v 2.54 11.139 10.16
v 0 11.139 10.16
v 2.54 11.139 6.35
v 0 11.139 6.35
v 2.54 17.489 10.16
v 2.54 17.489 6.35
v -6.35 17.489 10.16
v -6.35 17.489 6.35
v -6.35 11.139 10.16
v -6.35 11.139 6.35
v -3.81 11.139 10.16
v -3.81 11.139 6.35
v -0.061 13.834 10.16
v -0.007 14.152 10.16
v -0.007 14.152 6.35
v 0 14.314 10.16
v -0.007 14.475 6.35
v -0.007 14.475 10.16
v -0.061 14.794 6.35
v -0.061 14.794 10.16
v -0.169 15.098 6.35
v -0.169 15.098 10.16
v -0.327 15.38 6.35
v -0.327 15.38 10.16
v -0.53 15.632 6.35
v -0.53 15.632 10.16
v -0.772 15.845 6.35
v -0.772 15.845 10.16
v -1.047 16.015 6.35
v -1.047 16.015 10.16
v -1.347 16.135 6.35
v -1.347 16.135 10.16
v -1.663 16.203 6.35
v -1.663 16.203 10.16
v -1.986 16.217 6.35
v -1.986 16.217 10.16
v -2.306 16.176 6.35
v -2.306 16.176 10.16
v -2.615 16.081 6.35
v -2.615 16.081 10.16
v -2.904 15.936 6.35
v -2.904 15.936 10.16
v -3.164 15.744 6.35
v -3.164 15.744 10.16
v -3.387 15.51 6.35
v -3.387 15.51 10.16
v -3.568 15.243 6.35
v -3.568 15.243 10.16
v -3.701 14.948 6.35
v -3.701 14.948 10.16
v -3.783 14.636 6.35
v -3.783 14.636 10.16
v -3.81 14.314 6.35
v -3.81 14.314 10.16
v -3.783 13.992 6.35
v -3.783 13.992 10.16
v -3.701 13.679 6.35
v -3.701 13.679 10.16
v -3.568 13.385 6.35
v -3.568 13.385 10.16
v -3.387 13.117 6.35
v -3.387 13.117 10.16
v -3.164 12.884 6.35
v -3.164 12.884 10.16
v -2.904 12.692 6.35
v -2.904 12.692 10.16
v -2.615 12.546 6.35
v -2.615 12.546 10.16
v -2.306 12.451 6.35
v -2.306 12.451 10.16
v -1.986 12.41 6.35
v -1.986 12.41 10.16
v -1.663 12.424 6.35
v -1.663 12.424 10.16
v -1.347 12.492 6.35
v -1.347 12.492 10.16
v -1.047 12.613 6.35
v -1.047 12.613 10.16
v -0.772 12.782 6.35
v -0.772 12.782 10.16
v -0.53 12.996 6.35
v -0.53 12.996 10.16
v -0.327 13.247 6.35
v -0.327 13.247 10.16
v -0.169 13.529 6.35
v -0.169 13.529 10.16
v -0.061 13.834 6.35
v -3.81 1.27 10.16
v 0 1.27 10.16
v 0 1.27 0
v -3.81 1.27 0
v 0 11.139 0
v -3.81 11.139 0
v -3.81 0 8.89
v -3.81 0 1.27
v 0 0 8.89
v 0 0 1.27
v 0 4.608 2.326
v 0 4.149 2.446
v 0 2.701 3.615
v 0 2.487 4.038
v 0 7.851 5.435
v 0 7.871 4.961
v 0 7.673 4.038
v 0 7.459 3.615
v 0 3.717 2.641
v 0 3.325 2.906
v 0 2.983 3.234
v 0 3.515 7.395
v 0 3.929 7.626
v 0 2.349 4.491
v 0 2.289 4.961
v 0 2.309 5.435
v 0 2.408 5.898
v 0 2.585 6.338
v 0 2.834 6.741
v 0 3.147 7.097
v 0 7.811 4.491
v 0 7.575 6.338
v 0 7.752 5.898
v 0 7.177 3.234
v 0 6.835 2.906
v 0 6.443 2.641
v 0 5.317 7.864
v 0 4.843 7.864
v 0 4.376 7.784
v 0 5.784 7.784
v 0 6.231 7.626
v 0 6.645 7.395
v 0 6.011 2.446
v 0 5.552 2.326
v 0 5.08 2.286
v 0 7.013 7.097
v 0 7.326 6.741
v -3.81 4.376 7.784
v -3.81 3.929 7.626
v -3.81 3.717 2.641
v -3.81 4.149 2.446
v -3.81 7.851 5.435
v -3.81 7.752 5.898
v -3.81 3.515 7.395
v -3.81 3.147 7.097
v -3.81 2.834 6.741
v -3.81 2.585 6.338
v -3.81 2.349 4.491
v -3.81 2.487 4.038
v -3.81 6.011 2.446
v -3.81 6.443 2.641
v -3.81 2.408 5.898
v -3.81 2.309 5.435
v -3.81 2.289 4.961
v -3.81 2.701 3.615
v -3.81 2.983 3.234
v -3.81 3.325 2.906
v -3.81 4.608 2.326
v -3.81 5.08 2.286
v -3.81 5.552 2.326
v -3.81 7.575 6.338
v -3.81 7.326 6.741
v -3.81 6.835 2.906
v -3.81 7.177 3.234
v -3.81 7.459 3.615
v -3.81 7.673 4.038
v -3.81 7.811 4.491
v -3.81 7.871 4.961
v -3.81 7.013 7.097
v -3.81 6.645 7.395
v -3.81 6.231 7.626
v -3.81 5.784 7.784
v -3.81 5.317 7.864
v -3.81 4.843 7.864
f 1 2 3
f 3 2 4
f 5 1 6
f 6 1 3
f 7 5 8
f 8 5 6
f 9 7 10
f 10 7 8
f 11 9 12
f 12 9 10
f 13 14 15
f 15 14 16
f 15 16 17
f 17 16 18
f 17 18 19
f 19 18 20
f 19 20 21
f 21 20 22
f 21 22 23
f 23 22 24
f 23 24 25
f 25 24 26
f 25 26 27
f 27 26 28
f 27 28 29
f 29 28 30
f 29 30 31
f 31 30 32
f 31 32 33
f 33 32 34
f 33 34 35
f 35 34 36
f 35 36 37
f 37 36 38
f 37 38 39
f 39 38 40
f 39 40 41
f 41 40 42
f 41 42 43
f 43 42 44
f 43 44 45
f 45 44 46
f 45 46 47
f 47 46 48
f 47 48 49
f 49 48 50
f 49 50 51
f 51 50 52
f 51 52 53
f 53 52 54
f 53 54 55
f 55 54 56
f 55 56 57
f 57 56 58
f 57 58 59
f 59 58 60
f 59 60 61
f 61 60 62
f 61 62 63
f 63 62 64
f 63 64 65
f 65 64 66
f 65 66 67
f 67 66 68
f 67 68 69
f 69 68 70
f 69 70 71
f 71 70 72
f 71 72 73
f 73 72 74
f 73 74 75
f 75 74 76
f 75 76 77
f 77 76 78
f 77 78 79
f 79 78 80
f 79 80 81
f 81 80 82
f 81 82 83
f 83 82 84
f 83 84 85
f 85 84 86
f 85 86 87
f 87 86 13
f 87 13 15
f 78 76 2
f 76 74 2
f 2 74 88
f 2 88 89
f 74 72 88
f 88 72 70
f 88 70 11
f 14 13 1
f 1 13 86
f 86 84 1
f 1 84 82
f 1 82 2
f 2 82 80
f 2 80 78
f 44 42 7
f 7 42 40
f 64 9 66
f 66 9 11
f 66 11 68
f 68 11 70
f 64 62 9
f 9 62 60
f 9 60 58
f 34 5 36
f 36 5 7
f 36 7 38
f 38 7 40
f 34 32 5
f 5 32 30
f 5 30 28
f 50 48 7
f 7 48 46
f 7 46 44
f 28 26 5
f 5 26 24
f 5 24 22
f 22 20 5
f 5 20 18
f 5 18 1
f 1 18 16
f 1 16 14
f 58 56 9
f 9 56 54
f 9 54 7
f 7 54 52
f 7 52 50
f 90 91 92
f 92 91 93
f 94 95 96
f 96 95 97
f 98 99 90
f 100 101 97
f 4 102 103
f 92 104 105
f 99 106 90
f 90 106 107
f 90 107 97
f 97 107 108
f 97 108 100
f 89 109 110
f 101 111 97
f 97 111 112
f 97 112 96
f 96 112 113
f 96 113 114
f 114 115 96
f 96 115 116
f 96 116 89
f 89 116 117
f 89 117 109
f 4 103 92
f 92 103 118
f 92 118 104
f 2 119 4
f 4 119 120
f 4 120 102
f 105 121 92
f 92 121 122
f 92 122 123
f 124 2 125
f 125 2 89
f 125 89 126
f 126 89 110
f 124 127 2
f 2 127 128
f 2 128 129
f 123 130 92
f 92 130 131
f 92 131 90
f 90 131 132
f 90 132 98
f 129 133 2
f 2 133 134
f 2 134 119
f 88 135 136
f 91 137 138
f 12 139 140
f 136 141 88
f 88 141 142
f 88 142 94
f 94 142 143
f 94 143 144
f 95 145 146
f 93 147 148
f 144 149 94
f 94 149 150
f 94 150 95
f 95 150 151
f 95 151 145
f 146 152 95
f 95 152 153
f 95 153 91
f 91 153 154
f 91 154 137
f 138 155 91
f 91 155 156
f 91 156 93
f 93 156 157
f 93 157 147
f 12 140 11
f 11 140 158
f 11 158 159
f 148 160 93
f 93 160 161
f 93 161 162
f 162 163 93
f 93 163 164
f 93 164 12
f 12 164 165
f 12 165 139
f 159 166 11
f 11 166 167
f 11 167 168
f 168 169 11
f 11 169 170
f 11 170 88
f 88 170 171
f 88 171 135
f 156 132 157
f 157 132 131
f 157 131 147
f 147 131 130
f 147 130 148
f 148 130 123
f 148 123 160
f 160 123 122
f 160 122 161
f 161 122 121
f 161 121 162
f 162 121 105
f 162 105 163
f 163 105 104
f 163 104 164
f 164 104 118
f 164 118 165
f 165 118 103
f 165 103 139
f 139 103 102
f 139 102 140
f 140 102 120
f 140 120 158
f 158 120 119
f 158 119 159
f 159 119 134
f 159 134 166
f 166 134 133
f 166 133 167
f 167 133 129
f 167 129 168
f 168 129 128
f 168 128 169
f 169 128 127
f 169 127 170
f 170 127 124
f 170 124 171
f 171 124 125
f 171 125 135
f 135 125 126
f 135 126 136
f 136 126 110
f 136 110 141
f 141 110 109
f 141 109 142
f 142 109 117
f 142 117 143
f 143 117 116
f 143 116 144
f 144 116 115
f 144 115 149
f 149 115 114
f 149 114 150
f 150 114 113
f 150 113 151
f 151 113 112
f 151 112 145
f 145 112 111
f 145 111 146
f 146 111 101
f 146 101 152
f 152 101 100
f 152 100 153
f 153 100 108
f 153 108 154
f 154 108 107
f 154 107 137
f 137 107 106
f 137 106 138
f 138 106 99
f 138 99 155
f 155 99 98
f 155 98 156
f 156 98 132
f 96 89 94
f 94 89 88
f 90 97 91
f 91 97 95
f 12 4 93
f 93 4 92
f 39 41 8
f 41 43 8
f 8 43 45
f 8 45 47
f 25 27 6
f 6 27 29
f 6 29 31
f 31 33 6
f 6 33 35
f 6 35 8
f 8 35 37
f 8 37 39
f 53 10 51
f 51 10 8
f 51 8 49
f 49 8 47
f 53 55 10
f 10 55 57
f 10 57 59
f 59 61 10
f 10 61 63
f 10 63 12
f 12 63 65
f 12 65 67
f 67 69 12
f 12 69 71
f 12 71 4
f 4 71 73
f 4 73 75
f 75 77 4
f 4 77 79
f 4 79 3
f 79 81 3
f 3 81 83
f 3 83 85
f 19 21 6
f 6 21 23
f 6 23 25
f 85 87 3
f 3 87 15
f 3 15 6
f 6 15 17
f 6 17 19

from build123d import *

# Parameters (mm, degrees)
SKETCH7_R          = 1.905
BASE_DEPTH         = 10.16
LEVER_HOLE_REACH   = 23.199
SKETCH8_R          = 2.794
CHAMFER2_SIZE      = 1.27
SKETCH9_W          = 8.89
SKETCH9_H          = 6.35
CUT_EXTRUDE4_DEPTH = 6.35


with BuildPart() as part:
    # Sketch7 → base (new body)
    with BuildSketch(Plane(origin=(0, 0, 0), x_dir=(0, 1, 0), z_dir=(0, 0, 1))):
        Polygon((11.138733525, 0), (11.138733525, -2.54), (17.488733525, -2.54), (17.488733525, 6.35), (11.138733525, 6.35), (11.138733525, 3.81), (0, 3.81), (0, 0), align=None)
        with Locations(Location((14.313733525, 1.905, 0), (0, 0, 270))):
            Circle(SKETCH7_R, mode=Mode.SUBTRACT)
    extrude(amount=BASE_DEPTH)

    # Sketch8 → lever_hole (cut, up to next)
    with BuildSketch(Plane.YZ, mode=Mode.PRIVATE) as lever_hole_sk1:
        with Locations(Location((5.08, 5.08, 0), (0, 0, 270))):
            Circle(SKETCH8_R)
    lever_hole_tool1 = extrude(lever_hole_sk1.sketch, amount=-LEVER_HOLE_REACH, mode=Mode.PRIVATE) & part.part
    add(lever_hole_tool1.solids().sort_by_distance((0, 5.08, 5.08))[0], mode=Mode.SUBTRACT)

    # Chamfer2
    chamfer2_edges = [part.edges().sort_by_distance(p)[0] for p in [
        (-1.905, 0, 0),
        (-1.905, 0, 10.16),
    ]]
    chamfer(chamfer2_edges, length=CHAMFER2_SIZE)

    # Sketch9 → Cut-Extrude4 (cut)
    with BuildSketch(Plane(origin=(0, 0, 0), x_dir=(1, 0, 0), z_dir=(0, 0, -1))):
        with Locations((-1.905, -14.313733525)):
            Rectangle(SKETCH9_W, SKETCH9_H)
    extrude(amount=-CUT_EXTRUDE4_DEPTH, mode=Mode.SUBTRACT)


solid = part.part
